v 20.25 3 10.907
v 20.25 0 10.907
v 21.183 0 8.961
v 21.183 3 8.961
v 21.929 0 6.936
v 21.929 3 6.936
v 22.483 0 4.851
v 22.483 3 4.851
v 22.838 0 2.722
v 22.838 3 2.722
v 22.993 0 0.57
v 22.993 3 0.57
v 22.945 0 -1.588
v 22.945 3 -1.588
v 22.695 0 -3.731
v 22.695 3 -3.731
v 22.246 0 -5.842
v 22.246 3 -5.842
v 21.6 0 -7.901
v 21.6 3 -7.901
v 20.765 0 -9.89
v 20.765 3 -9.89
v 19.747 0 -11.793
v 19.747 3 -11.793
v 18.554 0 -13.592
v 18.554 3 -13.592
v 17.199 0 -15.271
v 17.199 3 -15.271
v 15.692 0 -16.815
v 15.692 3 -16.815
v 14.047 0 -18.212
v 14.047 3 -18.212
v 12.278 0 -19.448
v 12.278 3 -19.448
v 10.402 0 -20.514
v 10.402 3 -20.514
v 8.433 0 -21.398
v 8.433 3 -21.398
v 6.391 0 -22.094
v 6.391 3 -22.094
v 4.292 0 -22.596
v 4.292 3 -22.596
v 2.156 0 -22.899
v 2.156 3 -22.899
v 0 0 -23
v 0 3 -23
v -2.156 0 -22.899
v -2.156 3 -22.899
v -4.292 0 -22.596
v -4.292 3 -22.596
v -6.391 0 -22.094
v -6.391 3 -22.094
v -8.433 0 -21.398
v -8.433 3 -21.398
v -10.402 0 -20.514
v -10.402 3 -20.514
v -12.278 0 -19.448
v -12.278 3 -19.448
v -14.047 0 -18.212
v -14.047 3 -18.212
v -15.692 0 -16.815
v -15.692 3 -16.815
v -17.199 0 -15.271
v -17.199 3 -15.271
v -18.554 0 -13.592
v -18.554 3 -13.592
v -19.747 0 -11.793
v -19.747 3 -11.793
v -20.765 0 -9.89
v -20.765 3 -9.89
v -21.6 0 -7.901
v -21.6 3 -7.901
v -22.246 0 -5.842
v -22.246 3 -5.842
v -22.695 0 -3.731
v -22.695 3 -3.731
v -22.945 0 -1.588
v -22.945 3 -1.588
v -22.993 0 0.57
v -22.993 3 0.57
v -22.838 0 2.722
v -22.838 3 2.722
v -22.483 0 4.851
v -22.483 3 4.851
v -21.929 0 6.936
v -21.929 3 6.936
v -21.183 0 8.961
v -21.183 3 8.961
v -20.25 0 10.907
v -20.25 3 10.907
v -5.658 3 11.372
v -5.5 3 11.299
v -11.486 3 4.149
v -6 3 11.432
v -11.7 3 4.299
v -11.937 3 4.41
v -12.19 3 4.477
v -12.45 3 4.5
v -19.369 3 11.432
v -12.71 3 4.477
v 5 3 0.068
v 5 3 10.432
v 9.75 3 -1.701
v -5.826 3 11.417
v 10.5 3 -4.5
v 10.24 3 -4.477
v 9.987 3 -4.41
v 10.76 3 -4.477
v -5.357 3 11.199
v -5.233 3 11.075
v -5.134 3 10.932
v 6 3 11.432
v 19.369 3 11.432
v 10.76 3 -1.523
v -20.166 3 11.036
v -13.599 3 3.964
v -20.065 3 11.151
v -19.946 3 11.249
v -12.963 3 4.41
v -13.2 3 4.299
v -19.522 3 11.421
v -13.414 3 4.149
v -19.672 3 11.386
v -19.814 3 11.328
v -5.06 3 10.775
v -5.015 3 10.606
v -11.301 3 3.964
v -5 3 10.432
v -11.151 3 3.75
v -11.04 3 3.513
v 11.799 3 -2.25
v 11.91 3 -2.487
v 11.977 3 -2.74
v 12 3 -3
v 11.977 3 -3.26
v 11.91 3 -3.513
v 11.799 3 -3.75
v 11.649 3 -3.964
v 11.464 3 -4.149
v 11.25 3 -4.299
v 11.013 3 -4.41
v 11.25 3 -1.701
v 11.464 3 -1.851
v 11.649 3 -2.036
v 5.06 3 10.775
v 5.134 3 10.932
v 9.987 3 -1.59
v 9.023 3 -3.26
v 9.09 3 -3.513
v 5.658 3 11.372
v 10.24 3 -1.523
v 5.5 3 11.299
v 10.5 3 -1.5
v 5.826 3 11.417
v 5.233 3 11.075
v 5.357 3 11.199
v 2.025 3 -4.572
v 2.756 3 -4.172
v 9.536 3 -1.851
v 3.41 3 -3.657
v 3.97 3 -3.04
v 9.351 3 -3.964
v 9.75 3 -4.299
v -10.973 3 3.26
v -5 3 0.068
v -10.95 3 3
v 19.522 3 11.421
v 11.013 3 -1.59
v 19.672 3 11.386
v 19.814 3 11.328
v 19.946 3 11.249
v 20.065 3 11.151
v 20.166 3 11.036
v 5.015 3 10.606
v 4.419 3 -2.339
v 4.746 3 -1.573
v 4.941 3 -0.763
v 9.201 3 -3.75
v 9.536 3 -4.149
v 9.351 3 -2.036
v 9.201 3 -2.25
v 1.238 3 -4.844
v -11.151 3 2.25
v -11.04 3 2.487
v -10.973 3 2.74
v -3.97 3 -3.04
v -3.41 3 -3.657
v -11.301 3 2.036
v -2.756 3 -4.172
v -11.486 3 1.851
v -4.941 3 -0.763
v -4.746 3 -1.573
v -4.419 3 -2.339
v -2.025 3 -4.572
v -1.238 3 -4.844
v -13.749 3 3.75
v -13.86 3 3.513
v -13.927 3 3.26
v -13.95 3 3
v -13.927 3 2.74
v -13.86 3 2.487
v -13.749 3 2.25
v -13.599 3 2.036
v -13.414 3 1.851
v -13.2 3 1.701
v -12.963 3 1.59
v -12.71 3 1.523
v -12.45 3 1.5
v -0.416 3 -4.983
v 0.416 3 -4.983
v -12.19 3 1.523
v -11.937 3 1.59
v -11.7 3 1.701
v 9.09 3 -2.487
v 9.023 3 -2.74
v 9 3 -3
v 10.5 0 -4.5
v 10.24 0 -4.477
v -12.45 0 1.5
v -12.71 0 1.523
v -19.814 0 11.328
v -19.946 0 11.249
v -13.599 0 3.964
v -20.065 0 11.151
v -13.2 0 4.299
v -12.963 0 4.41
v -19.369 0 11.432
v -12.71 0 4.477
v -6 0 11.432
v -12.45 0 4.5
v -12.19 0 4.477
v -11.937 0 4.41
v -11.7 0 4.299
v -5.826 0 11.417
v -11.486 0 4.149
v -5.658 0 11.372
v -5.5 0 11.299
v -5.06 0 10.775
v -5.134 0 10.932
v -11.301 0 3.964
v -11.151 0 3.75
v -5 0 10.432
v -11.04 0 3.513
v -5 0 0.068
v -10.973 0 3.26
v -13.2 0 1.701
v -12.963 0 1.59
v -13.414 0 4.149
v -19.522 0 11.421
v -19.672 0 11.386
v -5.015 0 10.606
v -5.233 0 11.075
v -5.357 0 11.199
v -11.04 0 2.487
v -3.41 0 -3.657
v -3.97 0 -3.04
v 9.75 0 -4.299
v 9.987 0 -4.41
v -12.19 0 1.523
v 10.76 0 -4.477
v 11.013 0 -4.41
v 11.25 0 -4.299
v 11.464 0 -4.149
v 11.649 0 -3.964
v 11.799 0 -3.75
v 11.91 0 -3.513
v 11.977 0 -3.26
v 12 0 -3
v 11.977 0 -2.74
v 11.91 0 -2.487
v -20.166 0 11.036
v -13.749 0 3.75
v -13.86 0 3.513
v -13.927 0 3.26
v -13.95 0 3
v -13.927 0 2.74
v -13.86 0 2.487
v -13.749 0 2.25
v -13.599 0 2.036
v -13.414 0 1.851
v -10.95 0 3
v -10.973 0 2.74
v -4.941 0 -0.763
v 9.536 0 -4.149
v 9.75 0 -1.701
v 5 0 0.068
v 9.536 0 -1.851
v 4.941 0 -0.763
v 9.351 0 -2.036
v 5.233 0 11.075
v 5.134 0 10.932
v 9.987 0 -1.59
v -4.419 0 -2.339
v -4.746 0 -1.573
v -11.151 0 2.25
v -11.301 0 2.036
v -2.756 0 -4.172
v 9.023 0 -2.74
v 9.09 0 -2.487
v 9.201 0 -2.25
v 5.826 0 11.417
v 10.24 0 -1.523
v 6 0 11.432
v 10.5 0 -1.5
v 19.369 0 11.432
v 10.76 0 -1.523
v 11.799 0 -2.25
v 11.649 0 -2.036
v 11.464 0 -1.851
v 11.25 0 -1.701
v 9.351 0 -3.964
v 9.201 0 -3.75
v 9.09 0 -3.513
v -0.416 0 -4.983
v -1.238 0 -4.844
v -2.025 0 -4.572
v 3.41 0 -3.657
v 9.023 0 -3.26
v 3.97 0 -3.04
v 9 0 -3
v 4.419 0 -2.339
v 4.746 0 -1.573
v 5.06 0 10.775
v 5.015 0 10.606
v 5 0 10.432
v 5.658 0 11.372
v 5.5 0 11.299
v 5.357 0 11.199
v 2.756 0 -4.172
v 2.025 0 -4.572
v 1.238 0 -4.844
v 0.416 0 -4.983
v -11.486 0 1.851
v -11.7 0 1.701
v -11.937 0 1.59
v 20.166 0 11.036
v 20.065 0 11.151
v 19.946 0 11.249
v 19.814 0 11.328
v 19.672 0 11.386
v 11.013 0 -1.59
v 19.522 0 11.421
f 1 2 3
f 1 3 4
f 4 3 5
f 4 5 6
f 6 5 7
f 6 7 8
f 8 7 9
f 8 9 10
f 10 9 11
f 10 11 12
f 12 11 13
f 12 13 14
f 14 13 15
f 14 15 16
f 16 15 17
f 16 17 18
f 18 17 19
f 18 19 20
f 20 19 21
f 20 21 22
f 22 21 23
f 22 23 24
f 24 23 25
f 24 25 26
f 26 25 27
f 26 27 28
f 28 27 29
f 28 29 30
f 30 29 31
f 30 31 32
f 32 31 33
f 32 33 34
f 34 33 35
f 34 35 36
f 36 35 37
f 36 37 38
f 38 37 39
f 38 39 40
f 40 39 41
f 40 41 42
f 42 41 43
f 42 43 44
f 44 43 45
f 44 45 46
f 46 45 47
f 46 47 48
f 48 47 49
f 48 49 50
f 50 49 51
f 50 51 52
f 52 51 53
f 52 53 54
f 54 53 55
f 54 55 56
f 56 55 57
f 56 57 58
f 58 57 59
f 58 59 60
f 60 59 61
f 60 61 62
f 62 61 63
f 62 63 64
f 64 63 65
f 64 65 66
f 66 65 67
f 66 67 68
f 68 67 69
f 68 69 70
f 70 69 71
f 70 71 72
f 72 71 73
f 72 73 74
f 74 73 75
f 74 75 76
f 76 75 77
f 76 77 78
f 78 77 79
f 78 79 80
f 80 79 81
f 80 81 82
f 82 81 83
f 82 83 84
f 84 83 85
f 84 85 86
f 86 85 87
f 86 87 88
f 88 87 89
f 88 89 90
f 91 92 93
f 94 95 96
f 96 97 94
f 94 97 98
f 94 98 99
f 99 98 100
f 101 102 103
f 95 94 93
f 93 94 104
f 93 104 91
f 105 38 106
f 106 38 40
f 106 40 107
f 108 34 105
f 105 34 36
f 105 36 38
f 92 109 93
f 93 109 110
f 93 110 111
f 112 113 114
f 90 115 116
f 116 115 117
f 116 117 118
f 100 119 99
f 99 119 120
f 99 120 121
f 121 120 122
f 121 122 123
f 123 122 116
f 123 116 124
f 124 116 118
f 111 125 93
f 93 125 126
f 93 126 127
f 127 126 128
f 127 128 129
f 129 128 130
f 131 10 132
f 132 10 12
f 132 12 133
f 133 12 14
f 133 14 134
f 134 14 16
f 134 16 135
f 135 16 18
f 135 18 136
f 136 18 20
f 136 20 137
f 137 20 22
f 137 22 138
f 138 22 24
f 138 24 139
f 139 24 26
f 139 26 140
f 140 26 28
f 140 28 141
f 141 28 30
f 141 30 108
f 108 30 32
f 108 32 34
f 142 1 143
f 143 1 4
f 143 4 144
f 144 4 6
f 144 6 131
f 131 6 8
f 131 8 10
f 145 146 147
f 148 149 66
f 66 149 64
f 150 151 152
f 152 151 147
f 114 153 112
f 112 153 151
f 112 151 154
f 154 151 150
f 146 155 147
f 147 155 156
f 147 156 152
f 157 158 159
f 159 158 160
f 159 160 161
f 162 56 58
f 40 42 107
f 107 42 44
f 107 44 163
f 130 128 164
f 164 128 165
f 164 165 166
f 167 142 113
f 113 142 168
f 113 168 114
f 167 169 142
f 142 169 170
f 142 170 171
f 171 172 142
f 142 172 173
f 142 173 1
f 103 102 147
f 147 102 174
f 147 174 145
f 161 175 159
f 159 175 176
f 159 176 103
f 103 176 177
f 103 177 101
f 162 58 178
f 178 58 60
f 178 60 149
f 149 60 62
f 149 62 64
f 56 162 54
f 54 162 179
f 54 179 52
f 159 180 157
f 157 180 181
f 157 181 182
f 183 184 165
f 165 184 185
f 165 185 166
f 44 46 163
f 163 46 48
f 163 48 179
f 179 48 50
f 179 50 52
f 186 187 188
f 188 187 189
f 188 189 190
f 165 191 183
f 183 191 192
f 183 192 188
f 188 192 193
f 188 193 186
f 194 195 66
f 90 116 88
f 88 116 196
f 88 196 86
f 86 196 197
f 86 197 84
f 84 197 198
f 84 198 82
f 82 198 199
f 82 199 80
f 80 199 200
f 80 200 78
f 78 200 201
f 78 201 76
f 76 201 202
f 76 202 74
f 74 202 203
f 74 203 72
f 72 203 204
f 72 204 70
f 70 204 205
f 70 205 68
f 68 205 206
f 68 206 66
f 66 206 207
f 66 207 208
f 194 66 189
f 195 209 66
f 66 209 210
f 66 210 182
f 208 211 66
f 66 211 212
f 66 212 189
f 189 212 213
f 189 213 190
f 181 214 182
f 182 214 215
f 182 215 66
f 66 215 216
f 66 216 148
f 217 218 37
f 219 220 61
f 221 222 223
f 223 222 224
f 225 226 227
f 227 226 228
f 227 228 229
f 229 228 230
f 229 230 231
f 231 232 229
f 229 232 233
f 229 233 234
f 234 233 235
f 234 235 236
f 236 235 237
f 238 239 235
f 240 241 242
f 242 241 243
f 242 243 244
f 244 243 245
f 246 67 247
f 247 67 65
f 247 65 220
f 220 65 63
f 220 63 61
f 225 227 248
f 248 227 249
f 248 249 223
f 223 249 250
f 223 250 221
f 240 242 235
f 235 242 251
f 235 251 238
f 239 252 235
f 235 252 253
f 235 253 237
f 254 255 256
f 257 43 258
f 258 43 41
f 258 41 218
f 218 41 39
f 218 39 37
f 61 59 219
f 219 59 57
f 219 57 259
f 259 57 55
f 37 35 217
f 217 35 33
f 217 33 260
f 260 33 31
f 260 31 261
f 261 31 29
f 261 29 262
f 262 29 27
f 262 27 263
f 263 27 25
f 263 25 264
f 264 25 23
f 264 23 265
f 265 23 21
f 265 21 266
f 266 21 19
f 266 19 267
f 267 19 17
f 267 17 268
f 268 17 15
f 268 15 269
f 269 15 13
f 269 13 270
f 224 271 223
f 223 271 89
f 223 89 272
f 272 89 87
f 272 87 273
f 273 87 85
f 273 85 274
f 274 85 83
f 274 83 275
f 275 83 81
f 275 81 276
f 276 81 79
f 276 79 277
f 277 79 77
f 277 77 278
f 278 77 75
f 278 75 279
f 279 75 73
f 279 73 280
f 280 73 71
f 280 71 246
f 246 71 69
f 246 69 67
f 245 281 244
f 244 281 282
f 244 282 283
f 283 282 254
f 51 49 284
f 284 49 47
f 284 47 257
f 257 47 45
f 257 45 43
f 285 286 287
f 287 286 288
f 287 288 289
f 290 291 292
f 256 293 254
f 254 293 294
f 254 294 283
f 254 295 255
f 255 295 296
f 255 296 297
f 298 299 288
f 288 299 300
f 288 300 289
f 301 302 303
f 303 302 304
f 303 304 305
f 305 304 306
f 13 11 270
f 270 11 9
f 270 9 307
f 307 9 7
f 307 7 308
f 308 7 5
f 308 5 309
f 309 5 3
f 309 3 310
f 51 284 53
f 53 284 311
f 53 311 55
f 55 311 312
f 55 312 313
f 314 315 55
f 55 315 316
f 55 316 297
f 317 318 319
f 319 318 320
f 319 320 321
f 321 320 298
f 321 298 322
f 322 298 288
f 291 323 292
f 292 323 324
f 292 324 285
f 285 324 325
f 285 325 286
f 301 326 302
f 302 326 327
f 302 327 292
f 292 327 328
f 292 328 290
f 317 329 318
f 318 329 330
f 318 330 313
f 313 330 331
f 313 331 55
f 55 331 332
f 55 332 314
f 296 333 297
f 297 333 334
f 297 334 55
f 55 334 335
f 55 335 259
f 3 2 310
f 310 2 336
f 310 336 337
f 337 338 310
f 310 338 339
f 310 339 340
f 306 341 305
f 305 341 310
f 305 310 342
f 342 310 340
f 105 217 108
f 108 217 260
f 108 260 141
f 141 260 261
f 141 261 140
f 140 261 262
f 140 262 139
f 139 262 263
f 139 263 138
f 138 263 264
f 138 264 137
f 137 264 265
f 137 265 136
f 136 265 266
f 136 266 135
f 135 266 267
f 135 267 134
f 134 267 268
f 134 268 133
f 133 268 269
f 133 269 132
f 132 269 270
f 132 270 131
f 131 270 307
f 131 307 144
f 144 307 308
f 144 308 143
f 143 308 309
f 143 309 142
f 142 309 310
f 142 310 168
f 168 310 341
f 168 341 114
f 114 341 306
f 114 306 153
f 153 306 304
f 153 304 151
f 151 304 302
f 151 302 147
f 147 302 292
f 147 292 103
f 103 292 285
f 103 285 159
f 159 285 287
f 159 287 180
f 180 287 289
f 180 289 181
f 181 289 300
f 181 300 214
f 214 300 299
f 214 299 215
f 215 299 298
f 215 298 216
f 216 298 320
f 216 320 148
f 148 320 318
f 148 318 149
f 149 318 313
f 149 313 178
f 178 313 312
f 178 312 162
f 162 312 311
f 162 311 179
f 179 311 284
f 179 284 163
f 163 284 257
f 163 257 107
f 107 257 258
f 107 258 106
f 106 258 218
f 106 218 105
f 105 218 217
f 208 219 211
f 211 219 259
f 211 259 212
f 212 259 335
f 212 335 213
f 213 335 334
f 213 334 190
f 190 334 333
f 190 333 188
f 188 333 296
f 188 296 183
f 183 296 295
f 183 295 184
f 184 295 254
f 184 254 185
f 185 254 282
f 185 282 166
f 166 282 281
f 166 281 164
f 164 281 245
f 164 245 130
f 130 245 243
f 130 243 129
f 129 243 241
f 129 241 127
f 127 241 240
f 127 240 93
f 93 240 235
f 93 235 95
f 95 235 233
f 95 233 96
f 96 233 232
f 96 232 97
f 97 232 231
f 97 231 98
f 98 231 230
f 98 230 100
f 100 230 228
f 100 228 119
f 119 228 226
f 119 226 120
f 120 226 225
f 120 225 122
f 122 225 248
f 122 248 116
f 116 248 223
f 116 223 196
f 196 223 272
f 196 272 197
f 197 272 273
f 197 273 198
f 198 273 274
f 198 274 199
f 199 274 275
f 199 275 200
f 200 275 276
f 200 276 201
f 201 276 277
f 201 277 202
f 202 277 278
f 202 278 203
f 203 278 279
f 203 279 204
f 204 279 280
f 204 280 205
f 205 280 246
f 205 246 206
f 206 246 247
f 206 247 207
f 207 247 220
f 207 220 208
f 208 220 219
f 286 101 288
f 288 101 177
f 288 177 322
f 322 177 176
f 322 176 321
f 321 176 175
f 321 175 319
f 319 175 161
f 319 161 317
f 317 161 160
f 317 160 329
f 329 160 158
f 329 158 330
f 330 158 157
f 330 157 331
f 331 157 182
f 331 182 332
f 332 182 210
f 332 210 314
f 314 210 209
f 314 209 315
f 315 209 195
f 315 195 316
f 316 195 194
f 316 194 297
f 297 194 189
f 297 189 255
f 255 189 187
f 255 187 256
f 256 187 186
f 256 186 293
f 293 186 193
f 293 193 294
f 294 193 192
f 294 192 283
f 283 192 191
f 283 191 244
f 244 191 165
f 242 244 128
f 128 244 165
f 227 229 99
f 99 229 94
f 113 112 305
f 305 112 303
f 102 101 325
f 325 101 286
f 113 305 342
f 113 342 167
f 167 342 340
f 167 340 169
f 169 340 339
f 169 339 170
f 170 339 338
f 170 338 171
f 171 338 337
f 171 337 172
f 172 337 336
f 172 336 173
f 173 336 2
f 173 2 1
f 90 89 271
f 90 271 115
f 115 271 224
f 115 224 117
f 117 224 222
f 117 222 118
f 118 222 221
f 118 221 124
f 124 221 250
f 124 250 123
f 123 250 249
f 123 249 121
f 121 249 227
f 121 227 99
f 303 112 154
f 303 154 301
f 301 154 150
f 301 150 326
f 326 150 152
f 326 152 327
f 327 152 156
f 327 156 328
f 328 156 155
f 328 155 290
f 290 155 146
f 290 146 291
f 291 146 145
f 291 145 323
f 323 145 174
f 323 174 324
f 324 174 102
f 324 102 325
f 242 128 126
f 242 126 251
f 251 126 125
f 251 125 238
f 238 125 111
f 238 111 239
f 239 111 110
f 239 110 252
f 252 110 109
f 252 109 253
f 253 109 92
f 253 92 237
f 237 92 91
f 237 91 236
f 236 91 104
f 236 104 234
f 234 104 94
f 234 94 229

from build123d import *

# Parameters (mm, degrees)
SKETCH1_R           = 23
BOSS_EXTRUDE1_DEPTH = 3
SKETCH2_R           = 1.5
CUT_EXTRUDE1_DEPTH  = 10
SKETCH3_R           = 5
CUT_EXTRUDE2_DEPTH  = 10
CUT_EXTRUDE3_DEPTH  = 10
FILLET1_R           = 1


with BuildPart() as part:
    # Sketch1 → Boss-Extrude1 (new body)
    with BuildSketch(Plane(origin=(0, 0, 0), x_dir=(1, 0, 0), z_dir=(0, 1, 0))):
        with Locations(Location((0, 0, 0), (0, 0, 270))):
            Circle(SKETCH1_R)
    extrude(amount=BOSS_EXTRUDE1_DEPTH)

    # Sketch2 → Cut-Extrude1 (cut)
    with BuildSketch(Plane.XZ):
        with Locations(Location((-12.45, 3, 0), (0, 0, 270))):
            Circle(SKETCH2_R)
        with Locations(Location((10.5, -3, 0), (0, 0, 270))):
            Circle(SKETCH2_R)
    extrude(amount=-CUT_EXTRUDE1_DEPTH, mode=Mode.SUBTRACT)

    # Sketch3 → Cut-Extrude2 (cut)
    with BuildSketch(Plane(origin=(0, 3, 0), x_dir=(1, 0, 0), z_dir=(0, 1, 0))):
        with Locations(Location((0, 0, 0), (0, 0, 270))):
            Circle(SKETCH3_R)
    extrude(amount=-CUT_EXTRUDE2_DEPTH, mode=Mode.SUBTRACT)

    # Sketch4 → Cut-Extrude3 (cut)
    with BuildSketch(Plane(origin=(0, 3, 0), x_dir=(1, 0, 0), z_dir=(0, 1, 0))):
        Polygon((-4.999542106, 0.067666304), (-4.999542106, -6.72215), (-4.999542106, -11.432488216), (-23.949207952, -11.432488216), (-23.949207952, -24.872488216), (-5.202998913, -24.872488216), (4.797001087, -24.872488216), (29.316778345, -24.872488216), (29.316778345, -11.432488216), (4.999542106, -11.432488216), (4.999542106, 0.067666304), align=None)
    extrude(amount=-CUT_EXTRUDE3_DEPTH, mode=Mode.SUBTRACT)

    # Fillet1
    fillet1_edges = [part.edges().sort_by_distance(p)[0] for p in [
        (19.957409982, 1.5, 11.432488216),
        (4.999542106, 1.5, 11.432488216),
        (-19.957409982, 1.5, 11.432488216),
        (-4.999542106, 1.5, 11.432488216),
    ]]
    fillet(fillet1_edges, radius=FILLET1_R)


solid = part.part
